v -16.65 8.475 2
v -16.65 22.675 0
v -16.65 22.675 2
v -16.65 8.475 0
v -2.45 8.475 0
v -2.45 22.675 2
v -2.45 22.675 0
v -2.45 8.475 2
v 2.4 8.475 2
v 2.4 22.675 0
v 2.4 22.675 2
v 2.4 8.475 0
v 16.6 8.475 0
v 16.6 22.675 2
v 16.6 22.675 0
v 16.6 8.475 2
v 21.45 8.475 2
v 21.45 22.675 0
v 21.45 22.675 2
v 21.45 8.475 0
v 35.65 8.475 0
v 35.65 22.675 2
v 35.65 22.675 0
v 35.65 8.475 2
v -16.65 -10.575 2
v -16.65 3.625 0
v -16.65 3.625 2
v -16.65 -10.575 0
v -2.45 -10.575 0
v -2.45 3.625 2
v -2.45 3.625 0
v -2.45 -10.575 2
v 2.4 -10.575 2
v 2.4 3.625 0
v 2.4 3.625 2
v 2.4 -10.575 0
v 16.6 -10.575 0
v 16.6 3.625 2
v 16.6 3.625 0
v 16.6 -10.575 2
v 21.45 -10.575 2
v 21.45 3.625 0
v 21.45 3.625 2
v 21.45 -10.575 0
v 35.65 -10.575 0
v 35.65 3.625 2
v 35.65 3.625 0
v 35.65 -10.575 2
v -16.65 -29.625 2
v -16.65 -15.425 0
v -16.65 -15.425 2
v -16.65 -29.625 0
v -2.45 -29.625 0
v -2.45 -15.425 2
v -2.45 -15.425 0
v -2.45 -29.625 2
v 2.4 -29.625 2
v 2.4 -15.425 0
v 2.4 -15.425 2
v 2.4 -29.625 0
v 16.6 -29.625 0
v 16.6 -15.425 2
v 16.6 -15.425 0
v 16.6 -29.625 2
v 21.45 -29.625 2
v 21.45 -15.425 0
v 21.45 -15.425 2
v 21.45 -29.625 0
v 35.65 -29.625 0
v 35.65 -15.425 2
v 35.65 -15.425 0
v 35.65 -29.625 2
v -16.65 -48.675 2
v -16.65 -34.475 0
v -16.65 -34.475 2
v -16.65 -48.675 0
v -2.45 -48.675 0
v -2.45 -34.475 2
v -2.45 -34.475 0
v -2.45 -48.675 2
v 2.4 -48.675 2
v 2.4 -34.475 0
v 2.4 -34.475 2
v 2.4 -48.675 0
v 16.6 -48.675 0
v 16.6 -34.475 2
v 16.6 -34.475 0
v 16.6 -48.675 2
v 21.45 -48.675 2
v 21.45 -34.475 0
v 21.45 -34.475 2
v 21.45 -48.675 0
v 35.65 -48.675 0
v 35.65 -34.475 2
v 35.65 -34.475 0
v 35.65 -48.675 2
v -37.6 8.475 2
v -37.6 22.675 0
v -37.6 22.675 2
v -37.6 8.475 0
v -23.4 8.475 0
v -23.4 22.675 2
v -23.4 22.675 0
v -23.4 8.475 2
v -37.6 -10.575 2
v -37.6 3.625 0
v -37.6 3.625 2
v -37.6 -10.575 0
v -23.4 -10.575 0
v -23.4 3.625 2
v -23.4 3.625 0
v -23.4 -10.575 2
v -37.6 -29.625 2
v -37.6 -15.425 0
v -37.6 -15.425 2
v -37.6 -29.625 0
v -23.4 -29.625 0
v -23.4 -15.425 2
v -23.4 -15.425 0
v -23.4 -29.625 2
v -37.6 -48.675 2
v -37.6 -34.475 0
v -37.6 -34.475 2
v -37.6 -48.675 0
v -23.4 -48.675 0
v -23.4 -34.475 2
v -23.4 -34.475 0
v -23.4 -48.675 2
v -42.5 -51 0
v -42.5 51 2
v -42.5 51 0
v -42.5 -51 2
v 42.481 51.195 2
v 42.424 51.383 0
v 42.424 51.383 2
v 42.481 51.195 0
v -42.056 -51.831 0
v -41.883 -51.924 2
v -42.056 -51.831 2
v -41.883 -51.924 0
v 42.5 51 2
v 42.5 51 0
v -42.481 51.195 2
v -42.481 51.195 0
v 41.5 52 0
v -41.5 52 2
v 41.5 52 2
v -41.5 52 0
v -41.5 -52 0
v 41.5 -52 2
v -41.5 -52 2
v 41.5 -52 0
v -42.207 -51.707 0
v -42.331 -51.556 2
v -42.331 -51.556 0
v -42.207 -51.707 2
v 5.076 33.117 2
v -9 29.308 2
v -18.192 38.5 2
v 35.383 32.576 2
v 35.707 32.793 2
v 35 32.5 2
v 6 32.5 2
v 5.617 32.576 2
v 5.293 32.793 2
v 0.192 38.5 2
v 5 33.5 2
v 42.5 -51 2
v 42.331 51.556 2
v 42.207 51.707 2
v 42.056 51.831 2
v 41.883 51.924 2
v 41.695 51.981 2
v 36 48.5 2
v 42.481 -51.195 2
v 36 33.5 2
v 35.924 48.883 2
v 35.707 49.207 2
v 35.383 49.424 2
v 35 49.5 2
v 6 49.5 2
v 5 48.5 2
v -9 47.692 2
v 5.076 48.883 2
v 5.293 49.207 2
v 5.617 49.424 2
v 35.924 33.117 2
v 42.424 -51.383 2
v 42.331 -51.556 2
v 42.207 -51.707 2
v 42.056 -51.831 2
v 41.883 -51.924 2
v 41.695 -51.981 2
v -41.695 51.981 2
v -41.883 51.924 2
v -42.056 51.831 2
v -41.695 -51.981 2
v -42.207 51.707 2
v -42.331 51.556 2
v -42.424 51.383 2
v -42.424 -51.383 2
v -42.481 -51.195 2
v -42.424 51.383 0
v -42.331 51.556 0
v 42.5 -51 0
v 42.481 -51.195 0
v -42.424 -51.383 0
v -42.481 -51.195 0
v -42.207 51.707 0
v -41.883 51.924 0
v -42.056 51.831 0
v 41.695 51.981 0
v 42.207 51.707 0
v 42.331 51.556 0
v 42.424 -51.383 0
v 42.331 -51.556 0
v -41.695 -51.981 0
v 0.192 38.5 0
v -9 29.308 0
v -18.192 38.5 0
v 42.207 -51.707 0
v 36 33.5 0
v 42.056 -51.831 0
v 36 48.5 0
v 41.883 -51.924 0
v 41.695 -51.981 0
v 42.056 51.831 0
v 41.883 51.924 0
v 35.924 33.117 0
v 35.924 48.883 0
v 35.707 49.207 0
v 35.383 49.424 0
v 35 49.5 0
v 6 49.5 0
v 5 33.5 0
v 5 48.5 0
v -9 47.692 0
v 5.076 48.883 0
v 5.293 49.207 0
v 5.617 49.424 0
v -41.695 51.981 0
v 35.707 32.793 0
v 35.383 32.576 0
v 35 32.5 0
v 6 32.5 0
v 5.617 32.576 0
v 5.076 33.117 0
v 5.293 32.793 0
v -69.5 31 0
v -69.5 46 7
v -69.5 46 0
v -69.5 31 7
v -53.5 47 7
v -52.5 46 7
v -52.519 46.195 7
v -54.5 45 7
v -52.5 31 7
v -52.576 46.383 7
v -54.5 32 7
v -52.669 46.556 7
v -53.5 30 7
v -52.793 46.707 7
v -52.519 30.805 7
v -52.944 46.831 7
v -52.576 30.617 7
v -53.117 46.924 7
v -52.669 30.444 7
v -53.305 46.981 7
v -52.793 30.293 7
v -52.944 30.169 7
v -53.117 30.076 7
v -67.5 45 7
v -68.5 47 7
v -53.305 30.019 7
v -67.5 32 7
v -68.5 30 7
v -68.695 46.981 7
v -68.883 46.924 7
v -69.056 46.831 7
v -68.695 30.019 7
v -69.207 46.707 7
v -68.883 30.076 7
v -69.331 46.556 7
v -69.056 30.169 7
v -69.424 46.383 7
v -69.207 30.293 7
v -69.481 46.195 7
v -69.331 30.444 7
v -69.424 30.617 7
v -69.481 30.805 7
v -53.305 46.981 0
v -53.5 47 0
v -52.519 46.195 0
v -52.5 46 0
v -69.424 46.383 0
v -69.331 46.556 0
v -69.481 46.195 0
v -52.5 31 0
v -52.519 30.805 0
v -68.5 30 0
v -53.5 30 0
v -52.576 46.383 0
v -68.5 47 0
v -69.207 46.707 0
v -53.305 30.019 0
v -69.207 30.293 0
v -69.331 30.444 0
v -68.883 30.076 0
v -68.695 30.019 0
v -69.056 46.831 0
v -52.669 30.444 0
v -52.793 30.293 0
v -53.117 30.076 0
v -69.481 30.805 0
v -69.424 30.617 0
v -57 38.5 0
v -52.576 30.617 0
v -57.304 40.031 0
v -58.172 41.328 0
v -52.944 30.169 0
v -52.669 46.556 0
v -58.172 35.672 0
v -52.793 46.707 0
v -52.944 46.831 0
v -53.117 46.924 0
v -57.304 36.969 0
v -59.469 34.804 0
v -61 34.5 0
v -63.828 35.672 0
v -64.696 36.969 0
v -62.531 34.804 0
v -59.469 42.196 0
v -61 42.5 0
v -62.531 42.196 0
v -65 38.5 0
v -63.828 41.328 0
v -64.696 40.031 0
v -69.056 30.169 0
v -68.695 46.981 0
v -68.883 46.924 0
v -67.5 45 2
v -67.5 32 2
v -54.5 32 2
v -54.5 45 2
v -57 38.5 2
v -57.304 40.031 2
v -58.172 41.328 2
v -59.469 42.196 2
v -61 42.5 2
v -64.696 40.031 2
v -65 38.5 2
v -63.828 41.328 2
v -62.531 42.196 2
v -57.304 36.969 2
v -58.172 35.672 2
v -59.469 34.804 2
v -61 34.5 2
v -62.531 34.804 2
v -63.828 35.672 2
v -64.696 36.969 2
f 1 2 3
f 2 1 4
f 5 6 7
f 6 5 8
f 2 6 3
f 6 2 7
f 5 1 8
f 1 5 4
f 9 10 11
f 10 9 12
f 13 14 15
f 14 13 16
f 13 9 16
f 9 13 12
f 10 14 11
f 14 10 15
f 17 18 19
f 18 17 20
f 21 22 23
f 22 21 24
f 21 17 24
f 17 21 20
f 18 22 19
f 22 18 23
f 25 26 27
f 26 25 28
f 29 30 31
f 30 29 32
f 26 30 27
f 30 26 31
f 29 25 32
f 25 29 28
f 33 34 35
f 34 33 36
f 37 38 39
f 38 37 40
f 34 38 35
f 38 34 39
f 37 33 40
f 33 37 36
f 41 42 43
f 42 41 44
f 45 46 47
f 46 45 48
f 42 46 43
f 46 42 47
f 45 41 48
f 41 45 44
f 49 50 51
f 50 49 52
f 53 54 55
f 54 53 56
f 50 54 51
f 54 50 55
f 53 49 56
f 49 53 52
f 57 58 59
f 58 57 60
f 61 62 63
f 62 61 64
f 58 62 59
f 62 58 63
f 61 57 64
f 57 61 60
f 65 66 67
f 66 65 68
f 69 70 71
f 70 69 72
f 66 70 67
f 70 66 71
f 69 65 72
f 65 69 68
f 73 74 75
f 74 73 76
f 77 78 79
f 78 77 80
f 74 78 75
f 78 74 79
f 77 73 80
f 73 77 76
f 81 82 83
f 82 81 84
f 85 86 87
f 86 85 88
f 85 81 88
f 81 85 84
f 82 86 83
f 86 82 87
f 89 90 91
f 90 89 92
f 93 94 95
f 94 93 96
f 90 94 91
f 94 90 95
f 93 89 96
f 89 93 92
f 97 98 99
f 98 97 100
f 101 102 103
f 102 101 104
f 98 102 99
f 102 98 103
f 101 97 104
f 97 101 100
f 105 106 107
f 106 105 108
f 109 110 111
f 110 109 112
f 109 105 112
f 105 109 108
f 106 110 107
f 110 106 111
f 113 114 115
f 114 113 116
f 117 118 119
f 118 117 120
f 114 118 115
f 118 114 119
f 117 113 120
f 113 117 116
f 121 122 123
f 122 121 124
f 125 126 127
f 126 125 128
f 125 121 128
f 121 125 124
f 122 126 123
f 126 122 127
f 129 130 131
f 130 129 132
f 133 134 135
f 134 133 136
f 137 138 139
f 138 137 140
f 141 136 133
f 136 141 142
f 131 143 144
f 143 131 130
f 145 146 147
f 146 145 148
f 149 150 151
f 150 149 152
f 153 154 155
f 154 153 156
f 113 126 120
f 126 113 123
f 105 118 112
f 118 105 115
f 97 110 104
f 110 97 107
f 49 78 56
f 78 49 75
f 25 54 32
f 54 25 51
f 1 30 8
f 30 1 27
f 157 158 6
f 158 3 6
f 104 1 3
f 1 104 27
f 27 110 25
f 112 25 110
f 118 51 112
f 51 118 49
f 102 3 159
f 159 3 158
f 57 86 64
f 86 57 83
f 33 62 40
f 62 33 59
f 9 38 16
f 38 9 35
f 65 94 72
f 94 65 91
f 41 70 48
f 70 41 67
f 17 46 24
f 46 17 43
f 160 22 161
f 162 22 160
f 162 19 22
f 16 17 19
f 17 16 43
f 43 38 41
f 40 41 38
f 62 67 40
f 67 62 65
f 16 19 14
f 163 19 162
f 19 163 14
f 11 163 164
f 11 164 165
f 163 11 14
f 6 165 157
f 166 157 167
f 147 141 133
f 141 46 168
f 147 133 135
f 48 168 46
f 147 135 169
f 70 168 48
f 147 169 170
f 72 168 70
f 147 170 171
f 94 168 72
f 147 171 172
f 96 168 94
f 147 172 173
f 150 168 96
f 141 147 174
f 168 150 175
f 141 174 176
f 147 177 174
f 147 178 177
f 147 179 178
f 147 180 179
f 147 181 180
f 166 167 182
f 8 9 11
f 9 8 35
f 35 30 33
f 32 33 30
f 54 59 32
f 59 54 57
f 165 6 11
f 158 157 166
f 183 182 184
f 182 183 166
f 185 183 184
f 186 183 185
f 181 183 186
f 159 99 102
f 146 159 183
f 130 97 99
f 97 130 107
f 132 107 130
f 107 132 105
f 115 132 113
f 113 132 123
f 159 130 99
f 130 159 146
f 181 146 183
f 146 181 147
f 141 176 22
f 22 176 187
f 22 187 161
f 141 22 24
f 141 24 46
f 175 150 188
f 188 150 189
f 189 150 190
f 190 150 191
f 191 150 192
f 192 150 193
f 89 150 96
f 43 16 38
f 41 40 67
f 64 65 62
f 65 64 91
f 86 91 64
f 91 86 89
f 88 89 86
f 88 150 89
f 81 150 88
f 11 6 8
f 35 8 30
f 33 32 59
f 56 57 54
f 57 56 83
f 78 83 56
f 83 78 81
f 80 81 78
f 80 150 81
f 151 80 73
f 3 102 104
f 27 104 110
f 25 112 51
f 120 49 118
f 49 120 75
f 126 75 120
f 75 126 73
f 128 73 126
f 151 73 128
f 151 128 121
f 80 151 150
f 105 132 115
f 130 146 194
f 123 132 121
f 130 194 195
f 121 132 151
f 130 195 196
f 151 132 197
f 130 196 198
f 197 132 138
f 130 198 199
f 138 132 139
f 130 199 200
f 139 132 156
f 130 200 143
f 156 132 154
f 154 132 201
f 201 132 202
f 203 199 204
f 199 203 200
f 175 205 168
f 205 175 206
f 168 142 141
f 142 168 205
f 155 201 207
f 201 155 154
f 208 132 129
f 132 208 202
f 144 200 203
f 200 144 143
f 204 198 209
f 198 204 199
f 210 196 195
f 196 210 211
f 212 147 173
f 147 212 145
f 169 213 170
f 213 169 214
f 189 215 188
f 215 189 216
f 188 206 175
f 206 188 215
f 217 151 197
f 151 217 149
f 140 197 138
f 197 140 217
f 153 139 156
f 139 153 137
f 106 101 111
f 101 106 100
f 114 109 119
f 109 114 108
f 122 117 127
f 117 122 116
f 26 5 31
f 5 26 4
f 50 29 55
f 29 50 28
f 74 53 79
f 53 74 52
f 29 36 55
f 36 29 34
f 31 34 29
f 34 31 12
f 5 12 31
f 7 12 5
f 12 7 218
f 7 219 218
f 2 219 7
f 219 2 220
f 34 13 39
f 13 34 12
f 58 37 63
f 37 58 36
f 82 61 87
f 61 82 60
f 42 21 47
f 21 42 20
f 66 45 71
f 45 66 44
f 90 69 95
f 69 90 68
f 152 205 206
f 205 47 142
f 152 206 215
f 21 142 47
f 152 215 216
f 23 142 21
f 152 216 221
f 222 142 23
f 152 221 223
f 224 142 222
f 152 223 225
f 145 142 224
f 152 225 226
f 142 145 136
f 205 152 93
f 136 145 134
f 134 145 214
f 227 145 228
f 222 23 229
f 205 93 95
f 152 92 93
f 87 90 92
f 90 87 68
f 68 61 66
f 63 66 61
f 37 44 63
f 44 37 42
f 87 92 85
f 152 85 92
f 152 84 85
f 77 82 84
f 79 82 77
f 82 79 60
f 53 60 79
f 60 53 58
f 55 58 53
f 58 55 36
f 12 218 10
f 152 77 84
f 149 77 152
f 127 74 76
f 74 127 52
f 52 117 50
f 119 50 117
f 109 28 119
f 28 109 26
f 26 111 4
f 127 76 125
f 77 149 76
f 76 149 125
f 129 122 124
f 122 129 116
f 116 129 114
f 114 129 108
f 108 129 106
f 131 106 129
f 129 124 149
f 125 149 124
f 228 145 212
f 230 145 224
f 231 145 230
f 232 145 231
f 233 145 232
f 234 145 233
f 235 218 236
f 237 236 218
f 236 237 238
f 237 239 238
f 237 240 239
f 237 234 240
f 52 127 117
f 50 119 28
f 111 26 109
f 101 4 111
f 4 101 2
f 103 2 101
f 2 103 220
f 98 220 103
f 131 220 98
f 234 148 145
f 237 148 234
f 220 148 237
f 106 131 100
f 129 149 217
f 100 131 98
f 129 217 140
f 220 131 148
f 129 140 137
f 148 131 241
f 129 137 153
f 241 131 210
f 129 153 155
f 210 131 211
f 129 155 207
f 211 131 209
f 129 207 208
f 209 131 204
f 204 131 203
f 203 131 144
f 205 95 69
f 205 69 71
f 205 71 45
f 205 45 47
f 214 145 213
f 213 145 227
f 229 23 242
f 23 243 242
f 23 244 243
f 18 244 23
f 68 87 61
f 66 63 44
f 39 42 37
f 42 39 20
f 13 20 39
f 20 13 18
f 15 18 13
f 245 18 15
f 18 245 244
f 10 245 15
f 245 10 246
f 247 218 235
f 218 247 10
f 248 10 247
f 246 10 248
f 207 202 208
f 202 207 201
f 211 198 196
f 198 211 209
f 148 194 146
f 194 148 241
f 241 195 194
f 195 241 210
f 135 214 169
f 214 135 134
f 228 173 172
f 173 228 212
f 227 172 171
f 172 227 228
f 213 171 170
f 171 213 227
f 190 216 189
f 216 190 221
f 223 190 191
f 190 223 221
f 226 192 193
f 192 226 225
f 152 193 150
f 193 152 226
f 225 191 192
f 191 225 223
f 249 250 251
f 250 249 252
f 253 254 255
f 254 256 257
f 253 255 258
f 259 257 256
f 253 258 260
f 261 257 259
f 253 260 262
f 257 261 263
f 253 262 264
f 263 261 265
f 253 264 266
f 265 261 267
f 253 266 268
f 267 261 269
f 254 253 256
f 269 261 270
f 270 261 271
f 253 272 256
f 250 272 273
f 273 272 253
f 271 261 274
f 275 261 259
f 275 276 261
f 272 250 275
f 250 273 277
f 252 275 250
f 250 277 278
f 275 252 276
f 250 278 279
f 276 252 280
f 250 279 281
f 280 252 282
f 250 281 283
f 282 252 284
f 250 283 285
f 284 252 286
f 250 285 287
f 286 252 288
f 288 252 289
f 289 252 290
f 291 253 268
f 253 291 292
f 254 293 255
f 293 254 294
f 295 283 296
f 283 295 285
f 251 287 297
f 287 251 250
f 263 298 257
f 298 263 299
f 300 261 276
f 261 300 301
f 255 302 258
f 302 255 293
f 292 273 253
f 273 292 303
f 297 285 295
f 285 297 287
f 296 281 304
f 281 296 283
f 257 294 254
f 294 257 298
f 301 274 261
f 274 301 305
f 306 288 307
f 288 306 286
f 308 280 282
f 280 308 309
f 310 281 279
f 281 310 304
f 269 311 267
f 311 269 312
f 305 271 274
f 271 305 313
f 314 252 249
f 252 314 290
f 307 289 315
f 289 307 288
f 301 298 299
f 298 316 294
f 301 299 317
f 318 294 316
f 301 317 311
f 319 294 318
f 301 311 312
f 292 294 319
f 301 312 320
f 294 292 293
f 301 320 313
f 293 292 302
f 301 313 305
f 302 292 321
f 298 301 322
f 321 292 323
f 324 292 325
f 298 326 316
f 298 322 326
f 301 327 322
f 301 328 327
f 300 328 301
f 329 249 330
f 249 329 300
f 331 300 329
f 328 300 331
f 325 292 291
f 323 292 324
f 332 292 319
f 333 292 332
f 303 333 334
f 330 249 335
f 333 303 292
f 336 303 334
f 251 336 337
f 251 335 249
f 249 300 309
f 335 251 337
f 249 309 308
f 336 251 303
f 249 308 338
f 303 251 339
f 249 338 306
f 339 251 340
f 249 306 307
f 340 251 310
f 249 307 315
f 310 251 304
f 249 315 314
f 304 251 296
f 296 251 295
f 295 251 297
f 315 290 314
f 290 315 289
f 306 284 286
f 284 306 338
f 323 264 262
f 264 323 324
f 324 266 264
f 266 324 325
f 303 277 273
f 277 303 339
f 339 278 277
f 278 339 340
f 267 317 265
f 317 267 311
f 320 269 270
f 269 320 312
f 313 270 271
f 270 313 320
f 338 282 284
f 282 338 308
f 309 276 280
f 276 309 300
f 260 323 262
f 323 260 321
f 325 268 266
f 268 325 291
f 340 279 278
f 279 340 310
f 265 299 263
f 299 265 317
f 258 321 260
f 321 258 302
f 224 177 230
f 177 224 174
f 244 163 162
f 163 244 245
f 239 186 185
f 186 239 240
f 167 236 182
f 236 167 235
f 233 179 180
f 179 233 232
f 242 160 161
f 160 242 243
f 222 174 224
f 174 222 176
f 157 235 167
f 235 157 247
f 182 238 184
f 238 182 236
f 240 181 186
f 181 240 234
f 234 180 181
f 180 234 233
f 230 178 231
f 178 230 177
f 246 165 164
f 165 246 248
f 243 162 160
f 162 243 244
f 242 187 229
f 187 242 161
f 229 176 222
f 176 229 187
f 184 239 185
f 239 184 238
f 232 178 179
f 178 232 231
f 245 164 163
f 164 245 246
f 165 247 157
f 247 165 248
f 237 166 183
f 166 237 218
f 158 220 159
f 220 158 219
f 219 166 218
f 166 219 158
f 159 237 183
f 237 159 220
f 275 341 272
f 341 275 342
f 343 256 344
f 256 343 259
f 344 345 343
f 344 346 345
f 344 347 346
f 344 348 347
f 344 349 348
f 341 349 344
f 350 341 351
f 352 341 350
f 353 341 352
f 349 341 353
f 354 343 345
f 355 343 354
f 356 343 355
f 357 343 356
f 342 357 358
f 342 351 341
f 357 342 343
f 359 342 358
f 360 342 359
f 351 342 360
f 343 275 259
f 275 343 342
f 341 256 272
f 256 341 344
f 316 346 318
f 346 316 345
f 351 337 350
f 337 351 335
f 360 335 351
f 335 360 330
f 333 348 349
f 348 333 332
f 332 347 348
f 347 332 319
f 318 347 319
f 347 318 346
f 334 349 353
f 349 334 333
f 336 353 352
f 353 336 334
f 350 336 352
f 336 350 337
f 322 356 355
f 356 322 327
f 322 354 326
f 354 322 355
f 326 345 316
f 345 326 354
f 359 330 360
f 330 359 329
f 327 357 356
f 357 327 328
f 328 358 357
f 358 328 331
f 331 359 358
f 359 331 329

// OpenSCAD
// MacroPad RP2040 Top Cover
// Parametric design for Adafruit MacroPad RP2040 keyboard controller
// Author: Generated for CircuitPython EVM Controller project
// License: MIT

// Cheatsheet: https://openscad.org/cheatsheet/index.html?version=2021.01

// This file is the design for the top cover of a case designed to enclose the 
// Adafruit MacroPad RP2040 hardware module. Tve cover comtains 12 holes for the 
// key switches. The holes are sized to enssure a tight fit for the keys switches
// Key swiicthes are carefully inserted through the top cover holes, the looser
// fitting filler layer in to the keys switches sockes that Adafruit has soldered
// into the board. The cover also completely encloses the Encoder on the PCB.
// The encoder nut and washer is to be removed during assembly and added back
// on top of the shaft cover and used to secure the top cover to the PCB board. 

// =============================================================================
// PARAMETERS
// =============================================================================

// RP2040 PCB parameters
pcb_length = 105;          // RP2040 PCB length (mm)
pcb_width = 60;            // RP2040 PCB width (mm)
pcb_thickness = 1.6;       // Standard PCB thickness (mm)
pcb_clearance = 1;         // Space around PCB (mm)
pcb_height_clearance = 8;  // Space above PCB for components (mm)

// Overall cover dimensions addinh Quad Encoder
qencoder_width = 25;      // Width of Quad Encoder (mm)
cover_length = 105 - 1;   // Total length of cover (mm)  
cover_width = 60 + qencoder_width;         // Total width of cover (mm)
cover_thickness = 2;       // Thickness of top plate (mm)
corner_radius = 1;         // Rounded corner radius (mm)

// Key switch parameters (Cherry MX compatible)
key_switch_size = 14;      // Square hole size for key switches (mm)
key_switch_spacing = 19.05; // Center-to-center spacing (0.75" standard)
key_rows = 4;              // Number of rows
key_cols = 3;              // Number of columns

// Key switch grid positioning (relative to cover center)
keys_offset_x = 0;         // X offset of key grid center
keys_offset_y = -13;     // Y offset of key grid center (negative = toward bottom)

// LCD/OLED display parameters
lcd_width = 31;            // Width of LCD cutout (mm)
lcd_height = 17;           // Height of LCD cutout (mm)
lcd_corner_radius = 1;     // Corner radius for LCD hole
//lcd_offset_x = -11;        // X position relative to center
lcd_offset_x = 11;        // X position relative to center
lcd_offset_y = 41;         // Y position relative to center (positive = toward top)

// Cover base Encoder hole
encoder_hole_size = 13;         // Square hole size for encoder + 1 mm space(mm)
encoder_hole_offset_x = -18.5;   // Hole X position relative to center
encoder_hole_offset_y = 38.5;   // Hole Y position relative to center
encoder_hole_z = 5;             // Hole encoder shaft height

// Rotary encoder parameters and relative to shaft center
encoder_shaft_diameter = 6;
encoder_size = 13;         // Square hole size for encoder + 1 mm space(mm)
//encoder_offset_x = 18.5 ;   // X position relative to center
encoder_offset_x = -48.5 - qencoder_width / 2;   // X position relative to center
encoder_offset_y = 38.5;   // Y position relative to center
encoder_shaft_z = 7;      // Encoder shaft height
encoder_shaft_clearance = 2; // General clearance for 3D printing (mm)

shaft_wall_width= 2;       // 
shaft_corner_radius = 1;   // Corner radius for encoder hole

// Mounting and clearance
wall_thickness = 2;        // Wall thickness for sides (if adding later)
clearance = 0.2;           // General clearance for 3D printing (mm)

// =============================================================================
// MAIN OBJECT
// =============================================================================

difference() {
        
    // Base cover plate
    base_cover();
    
    // Cut out holes for key switches
    key_switch_holes();
    
    // Cut out holes for quad encoders
    quad_encoder_holes();
    
    // Cut out hole for LCD/OLED
    lcd_hole();
    
    base_encoder_hole();

    // Cut out hole for rotary encoder
    encoder_shaft_hole();                        

    // Cut out encoder shaft hole
    encoder_round_hole();
        
}

// Optional: Show key switch positions for reference (comment out for final print)
// %key_switch_positions(); // The % makes it transparent/reference only

// =============================================================================
// MODULES (Functions)
// =============================================================================

// Create the base cover plate with rounded corners
module base_cover() {
    
    union() {
        // Using hull() with corner cylinders to create rounded rectangle
        hull() {
            // Four corner cylinders to create rounded rectangle
            translate([-(cover_width/2 - corner_radius), -(cover_length/2 - corner_radius), 0])
                cylinder(h = cover_thickness, r = corner_radius, $fn = 32);
            
            translate([+(cover_width/2 - corner_radius), -(cover_length/2 - corner_radius), 0])
                cylinder(h = cover_thickness, r = corner_radius, $fn = 32);
            
            translate([+(cover_width/2 - corner_radius), +(cover_length/2 - corner_radius), 0])
                cylinder(h = cover_thickness, r = corner_radius, $fn = 32);
            
            translate([-(cover_width/2 - corner_radius), +(cover_length/2 - corner_radius), 0])
                cylinder(h = cover_thickness, r = corner_radius, $fn = 32);
        }
        
        // Wrap the open encoder shaft
        encoder_shaft_wrap();                        
    }
}

// Create all key switch holes in a 3x4 matrix
module key_switch_holes() {
    // Calculate starting position for grid (top-left key)
    start_x = keys_offset_x - (key_switch_spacing * (key_cols - 1) / 2) + qencoder_width/2 - 3;
    start_y = keys_offset_y + (key_switch_spacing * (key_rows - 1) / 2);
    
    // Create grid of holes
    for (row = [0 : key_rows - 1]) {
        for (col = [0 : key_cols - 1]) {
            translate([
                start_x + (col * key_switch_spacing),
                start_y - (row * key_switch_spacing),
                -0.5  // Extend slightly below surface for clean cut
            ]) {
                // Square hole for key switch
                cube([
                    key_switch_size + clearance,
                    key_switch_size + clearance,
                    cover_thickness + 5
                ], center = true);
            }
        }
    }
}

// Create all quad encoder holes in a 1x4 matrix
module quad_encoder_holes() {
    // Calculate starting position for grid (top-left key)
    key_rows = 4;
    key_cols = 1;

    start_x = keys_offset_x - (key_switch_spacing * (key_cols - 1) / 2) + qencoder_width/2 - 40 - 3;
    start_y = keys_offset_y + (key_switch_spacing * (key_rows - 1) / 2);
    
    // Create grid of holes
    for (row = [0 : key_rows - 1]) {
        for (col = [0 : key_cols - 1]) {
            translate([
                start_x + (col * key_switch_spacing),
                start_y - (row * key_switch_spacing),
                -0.5  // Extend slightly below surface for clean cut
            ]) {
                // Square hole for key switch
                cube([
                    key_switch_size + clearance,
                    key_switch_size + clearance,
                    cover_thickness + 5
                ], center = true);
            }
        }
    }
}


// Create LCD/OLED display hole
module lcd_hole() {
    translate([lcd_offset_x + qencoder_width/2 - 3, lcd_offset_y, -0.5]) {
        // Rounded rectangle hole for LCD
        hull() {
            // Four corner cylinders for rounded rectangle
            translate([-(lcd_width/2 - lcd_corner_radius), -(lcd_height/2 - lcd_corner_radius), 0])
                cylinder(h = cover_thickness + 1, r = lcd_corner_radius, $fn = 16);
            
            translate([+(lcd_width/2 - lcd_corner_radius), -(lcd_height/2 - lcd_corner_radius), 0])
                cylinder(h = cover_thickness + 1, r = lcd_corner_radius, $fn = 16);
            
            translate([+(lcd_width/2 - lcd_corner_radius), +(lcd_height/2 - lcd_corner_radius), 0])
                cylinder(h = cover_thickness + 1, r = lcd_corner_radius, $fn = 16);
            
            translate([-(lcd_width/2 - lcd_corner_radius), +(lcd_height/2 - lcd_corner_radius), 0])
                cylinder(h = cover_thickness + 1, r = lcd_corner_radius, $fn = 16);
        }
    }
}


// Reference module to show key switch positions (for design verification)
module key_switch_positions() {
    // Calculate starting position for grid
    start_x = keys_offset_x - (key_switch_spacing * (key_cols - 1) / 2);
    start_y = keys_offset_y + (key_switch_spacing * (key_rows - 1) / 2);
    
    // Show key positions with small cylinders
    for (row = [0 : key_rows - 1]) {
        for (col = [0 : key_cols - 1]) {
            translate([
                start_x + (col * key_switch_spacing),
                start_y - (row * key_switch_spacing),
                cover_thickness
            ]) {
                cylinder(h = 2, r = 1, $fn = 8);
                
                // Optional: Add text labels for key numbers
                translate([0, 0, 2]) {
                    linear_extrude(height = 0.5) {
                        text(
                            str(row * key_cols + col), 
                            size = 3, 
                            halign = "center", 
                            valign = "center"
                        );
                    }
                }
            }
        }
    }
}


// Reference module to show key switch positions (for design verification)
module qencoder_positions() {
    key_rows = 4;
    key_cols = 1;
    
    // Calculate starting position for grid
    start_x = keys_offset_x - (key_switch_spacing * (key_cols - 1) / 2) - 30;
    start_y = keys_offset_y + (key_switch_spacing * (key_rows - 1) / 2);
    
    // Show key positions with small cylinders
    for (row = [0 : key_rows - 1]) {
        for (col = [0 : key_cols - 1]) {
            translate([
                start_x + (col * key_switch_spacing),
                start_y - (row * key_switch_spacing),
                cover_thickness
            ]) {
                cylinder(h = 2, r = 1, $fn = 8);
                
                // Optional: Add text labels for key numbers
                translate([0, 0, 2]) {
                    linear_extrude(height = 0.5) {
                        text(
                            str(row * key_cols + col), 
                            size = 3, 
                            halign = "center", 
                            valign = "center"
                        );
                    }
                }
            }
        }
    }
}


// Encoder hole in cover base
module base_encoder_hole() {
    
    color("blue") translate([encoder_hole_offset_x + qencoder_width/2 - 3, encoder_hole_offset_y, -0.5]) {
        // Square hole with slightly rounded corners for encoder
        rotate(45) 
        cube([encoder_hole_size,encoder_hole_size, 10],center = true);
    }    
}



// Seperated: Create rotary encoder hole through cover base and shaft cibe
module encoder_shaft_wrap() {
    
    encoder_z = encoder_shaft_z - shaft_wall_width;  // 2mm Shaft top cover
    
    translate([encoder_offset_x, encoder_offset_y, 0]) {
        // Square hole with slightly rounded corners for encoder
        hull() {
            // Four corner cylinders for rounded square
            translate([+(encoder_size/2 + shaft_wall_width - shaft_corner_radius), -(encoder_size/2 + shaft_wall_width - shaft_corner_radius), 0])
                cylinder(h = cover_thickness + encoder_z, r = shaft_corner_radius, $fn = 32);
            
            translate([-(encoder_size/2 + shaft_wall_width - shaft_corner_radius), -(encoder_size/2 + shaft_wall_width - shaft_corner_radius), 0])
                cylinder(h = cover_thickness + encoder_z, r = shaft_corner_radius, $fn = 32);
            
            translate([+(encoder_size/2 + shaft_wall_width - shaft_corner_radius), (encoder_size/2 + shaft_wall_width - shaft_corner_radius), 0])
                cylinder(h = cover_thickness + encoder_z, r = shaft_corner_radius, $fn = 32);
            
            translate([-(encoder_size/2 + shaft_wall_width - shaft_corner_radius), (encoder_size/2 + shaft_wall_width - shaft_corner_radius), 0])
                cylinder(h = cover_thickness + encoder_z, r = shaft_corner_radius, $fn = 32);
        }
    }
}


// Seperated: Create a wrapper around encoder sides starting at cover height
module encoder_shaft_hole() {
    encoder_z = encoder_shaft_z + shaft_wall_width;  // 2mm Shaft top cover
    
    color("red") translate([encoder_offset_x, encoder_offset_y, encoder_z / 2 + 2]) {
        // Square hole with slightly rounded corners for encoder 
        cube([encoder_size,encoder_size, encoder_z],center = true);
    }    
}

// Seperated: Create Encoder 6mm Shaft through hole
module encoder_round_hole() {
    color("blue") translate([encoder_offset_x, encoder_offset_y, -0.5]) {
        // Through hole for encoder shaft
        cylinder(
            h = encoder_shaft_z + 2, 
            d = encoder_shaft_diameter + encoder_shaft_clearance, 
            $fn = 16
        );        
    }
}
